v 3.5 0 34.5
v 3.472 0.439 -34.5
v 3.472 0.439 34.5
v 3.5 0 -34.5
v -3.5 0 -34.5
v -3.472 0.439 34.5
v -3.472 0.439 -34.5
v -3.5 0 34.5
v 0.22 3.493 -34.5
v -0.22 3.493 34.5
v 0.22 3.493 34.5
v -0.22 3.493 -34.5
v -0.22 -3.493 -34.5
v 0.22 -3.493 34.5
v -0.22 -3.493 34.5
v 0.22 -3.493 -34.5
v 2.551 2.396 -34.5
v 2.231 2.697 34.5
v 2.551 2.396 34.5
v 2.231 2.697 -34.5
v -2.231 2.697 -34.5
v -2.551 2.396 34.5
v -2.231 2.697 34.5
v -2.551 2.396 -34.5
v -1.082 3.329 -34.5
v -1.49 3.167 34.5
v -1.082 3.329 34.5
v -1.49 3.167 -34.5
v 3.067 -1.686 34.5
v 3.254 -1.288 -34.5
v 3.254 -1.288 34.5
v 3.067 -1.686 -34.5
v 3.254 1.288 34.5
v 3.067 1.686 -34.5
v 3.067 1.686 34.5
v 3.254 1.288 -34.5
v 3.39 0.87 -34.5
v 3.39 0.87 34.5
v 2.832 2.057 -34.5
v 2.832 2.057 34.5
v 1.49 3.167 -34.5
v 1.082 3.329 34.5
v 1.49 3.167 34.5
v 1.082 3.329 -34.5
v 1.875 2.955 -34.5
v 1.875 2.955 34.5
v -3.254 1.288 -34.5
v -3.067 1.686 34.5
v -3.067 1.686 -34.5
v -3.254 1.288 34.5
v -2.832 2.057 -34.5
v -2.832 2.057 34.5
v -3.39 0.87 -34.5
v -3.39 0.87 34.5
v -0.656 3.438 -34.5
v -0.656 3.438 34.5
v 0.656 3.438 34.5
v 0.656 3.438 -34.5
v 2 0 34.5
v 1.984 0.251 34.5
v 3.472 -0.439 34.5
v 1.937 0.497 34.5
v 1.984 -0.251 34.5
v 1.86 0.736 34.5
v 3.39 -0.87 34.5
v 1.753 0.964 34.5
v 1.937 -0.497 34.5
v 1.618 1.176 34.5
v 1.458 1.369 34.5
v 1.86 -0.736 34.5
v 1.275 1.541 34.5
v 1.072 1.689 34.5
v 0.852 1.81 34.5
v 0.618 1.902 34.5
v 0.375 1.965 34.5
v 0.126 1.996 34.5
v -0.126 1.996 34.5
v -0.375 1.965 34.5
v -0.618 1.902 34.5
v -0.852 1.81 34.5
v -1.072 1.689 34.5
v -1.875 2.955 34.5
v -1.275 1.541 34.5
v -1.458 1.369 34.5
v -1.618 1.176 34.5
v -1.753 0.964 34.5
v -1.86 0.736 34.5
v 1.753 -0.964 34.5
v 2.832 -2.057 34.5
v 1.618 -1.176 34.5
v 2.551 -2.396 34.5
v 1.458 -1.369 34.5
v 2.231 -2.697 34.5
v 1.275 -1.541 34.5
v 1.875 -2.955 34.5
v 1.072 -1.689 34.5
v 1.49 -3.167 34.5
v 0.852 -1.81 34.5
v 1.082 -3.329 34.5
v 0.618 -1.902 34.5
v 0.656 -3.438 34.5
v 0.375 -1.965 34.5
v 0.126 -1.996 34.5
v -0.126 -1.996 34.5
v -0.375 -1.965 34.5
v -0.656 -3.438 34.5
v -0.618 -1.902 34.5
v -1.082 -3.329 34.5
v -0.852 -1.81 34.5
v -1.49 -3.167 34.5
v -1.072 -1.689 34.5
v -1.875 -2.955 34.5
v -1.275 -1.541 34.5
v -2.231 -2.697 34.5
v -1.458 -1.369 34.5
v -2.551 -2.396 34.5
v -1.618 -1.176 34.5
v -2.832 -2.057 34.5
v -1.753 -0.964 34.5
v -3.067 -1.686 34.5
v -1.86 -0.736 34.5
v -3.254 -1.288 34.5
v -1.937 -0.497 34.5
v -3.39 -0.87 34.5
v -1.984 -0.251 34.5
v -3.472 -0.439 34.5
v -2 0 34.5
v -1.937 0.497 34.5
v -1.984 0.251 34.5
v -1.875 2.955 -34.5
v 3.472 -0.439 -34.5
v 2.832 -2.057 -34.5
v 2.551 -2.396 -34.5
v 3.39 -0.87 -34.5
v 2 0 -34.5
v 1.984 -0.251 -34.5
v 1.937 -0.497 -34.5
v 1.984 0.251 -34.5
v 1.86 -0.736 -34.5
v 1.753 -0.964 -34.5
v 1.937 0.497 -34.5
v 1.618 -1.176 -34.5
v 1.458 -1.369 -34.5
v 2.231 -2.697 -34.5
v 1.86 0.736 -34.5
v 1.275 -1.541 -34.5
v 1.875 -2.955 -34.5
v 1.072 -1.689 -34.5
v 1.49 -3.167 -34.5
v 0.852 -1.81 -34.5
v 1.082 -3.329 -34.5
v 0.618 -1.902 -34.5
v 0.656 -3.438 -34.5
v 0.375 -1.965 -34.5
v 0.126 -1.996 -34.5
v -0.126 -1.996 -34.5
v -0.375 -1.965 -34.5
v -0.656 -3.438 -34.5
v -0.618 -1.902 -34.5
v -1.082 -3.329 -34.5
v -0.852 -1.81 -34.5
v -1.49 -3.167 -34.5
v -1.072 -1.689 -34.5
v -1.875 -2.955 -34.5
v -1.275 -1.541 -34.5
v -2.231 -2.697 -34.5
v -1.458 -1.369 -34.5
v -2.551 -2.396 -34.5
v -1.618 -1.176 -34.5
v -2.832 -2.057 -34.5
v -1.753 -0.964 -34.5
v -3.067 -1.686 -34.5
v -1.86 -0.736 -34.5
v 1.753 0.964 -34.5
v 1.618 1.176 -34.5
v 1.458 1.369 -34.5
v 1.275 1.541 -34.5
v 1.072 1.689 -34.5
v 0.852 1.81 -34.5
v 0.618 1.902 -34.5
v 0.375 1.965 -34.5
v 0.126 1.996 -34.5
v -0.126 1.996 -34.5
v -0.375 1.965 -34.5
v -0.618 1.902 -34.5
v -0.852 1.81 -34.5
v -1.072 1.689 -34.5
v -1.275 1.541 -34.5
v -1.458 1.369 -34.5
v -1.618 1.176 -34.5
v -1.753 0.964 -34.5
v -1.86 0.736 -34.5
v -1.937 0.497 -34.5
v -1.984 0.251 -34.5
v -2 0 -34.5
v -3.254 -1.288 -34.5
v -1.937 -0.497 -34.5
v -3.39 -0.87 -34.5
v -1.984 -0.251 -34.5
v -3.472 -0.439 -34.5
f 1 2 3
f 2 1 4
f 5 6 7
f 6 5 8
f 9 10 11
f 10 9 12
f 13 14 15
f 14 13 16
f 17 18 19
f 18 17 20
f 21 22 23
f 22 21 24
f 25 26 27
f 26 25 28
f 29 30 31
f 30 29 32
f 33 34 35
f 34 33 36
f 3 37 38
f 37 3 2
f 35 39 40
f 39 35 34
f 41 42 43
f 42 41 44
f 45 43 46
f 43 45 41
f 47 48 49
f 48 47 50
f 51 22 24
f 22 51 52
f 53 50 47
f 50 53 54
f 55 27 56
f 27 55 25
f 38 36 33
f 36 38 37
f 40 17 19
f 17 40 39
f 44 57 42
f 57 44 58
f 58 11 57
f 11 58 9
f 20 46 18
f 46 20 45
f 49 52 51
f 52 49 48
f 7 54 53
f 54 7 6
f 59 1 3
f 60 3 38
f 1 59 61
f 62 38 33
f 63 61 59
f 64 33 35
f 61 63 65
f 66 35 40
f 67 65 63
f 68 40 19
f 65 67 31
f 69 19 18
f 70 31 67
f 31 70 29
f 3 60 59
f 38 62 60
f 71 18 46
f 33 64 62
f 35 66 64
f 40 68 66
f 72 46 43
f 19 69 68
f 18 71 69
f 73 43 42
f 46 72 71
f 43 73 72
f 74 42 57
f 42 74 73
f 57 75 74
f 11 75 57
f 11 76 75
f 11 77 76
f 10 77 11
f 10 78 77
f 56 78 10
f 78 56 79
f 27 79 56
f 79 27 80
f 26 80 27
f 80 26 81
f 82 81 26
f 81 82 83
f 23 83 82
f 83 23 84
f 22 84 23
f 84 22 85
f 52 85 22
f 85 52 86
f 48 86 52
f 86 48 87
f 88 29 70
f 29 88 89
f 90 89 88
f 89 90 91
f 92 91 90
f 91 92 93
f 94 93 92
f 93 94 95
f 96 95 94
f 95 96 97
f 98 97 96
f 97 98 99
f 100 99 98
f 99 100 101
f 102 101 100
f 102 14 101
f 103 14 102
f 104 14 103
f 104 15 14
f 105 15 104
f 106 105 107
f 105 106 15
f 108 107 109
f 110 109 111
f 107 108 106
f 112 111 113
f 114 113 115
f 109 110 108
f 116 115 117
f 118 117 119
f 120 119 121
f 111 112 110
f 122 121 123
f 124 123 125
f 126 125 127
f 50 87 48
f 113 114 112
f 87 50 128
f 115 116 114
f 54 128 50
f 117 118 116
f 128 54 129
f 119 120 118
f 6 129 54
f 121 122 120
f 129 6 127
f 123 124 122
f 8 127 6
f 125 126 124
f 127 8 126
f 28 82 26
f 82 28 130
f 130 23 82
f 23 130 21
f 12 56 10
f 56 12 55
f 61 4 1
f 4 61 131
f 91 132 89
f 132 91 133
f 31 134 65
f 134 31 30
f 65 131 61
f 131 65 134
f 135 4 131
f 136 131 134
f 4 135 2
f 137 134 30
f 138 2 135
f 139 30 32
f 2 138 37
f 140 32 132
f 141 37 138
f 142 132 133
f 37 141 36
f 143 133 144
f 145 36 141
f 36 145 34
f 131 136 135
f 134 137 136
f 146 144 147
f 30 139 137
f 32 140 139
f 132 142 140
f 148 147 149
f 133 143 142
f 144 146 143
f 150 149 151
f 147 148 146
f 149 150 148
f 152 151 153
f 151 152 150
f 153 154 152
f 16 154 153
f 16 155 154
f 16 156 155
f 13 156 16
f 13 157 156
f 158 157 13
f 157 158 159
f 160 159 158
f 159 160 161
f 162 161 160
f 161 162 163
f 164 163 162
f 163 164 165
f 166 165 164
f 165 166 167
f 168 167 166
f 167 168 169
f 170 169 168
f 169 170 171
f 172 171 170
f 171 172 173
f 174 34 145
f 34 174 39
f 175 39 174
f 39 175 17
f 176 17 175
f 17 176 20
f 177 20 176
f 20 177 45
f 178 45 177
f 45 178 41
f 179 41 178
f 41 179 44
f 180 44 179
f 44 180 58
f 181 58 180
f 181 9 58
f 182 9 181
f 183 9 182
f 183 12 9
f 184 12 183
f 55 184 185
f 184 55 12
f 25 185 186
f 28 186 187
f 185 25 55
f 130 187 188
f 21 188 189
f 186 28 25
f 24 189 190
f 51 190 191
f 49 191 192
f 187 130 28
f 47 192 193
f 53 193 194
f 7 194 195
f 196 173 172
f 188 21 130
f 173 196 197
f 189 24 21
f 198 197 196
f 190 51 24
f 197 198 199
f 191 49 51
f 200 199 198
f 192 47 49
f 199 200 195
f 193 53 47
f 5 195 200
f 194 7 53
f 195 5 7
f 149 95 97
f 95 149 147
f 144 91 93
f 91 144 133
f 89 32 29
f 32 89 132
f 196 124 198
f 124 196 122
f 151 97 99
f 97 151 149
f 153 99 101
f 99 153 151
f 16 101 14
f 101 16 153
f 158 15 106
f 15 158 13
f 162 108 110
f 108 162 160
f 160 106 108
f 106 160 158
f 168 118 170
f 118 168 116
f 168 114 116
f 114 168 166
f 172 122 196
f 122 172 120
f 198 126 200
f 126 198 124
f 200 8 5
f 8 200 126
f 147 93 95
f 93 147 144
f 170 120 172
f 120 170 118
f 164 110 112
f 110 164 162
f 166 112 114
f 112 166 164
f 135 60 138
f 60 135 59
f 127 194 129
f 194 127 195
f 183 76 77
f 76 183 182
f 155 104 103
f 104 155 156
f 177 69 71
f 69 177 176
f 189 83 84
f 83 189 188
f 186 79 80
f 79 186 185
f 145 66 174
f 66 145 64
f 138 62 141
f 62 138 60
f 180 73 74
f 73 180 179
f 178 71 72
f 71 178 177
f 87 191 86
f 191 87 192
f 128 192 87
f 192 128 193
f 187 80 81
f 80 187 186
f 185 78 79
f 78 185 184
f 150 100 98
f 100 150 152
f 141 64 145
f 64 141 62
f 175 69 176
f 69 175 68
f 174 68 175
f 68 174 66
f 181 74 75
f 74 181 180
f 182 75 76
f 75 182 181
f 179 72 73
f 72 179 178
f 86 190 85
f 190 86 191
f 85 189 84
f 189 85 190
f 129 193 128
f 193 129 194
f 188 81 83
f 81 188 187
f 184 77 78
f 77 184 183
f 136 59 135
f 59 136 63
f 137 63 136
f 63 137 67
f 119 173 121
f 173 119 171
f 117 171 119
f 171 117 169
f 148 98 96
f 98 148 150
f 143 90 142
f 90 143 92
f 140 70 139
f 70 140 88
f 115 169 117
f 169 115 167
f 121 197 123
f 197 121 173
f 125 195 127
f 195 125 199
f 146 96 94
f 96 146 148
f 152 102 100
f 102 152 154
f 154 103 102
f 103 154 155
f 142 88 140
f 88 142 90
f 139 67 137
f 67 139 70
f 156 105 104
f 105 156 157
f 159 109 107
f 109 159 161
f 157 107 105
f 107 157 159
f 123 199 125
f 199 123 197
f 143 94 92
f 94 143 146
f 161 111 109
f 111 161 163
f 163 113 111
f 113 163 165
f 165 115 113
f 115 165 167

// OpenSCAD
$fn = 50;


difference() {
	union() {
		translate(v = [0, 0, -34.5000000000]) {
			cylinder(h = 69, r = 3.5000000000);
		}
	}
	union() {
		translate(v = [0, 0, -100.0000000000]) {
			cylinder(h = 200, r = 2.0000000000);
		}
	}
}
